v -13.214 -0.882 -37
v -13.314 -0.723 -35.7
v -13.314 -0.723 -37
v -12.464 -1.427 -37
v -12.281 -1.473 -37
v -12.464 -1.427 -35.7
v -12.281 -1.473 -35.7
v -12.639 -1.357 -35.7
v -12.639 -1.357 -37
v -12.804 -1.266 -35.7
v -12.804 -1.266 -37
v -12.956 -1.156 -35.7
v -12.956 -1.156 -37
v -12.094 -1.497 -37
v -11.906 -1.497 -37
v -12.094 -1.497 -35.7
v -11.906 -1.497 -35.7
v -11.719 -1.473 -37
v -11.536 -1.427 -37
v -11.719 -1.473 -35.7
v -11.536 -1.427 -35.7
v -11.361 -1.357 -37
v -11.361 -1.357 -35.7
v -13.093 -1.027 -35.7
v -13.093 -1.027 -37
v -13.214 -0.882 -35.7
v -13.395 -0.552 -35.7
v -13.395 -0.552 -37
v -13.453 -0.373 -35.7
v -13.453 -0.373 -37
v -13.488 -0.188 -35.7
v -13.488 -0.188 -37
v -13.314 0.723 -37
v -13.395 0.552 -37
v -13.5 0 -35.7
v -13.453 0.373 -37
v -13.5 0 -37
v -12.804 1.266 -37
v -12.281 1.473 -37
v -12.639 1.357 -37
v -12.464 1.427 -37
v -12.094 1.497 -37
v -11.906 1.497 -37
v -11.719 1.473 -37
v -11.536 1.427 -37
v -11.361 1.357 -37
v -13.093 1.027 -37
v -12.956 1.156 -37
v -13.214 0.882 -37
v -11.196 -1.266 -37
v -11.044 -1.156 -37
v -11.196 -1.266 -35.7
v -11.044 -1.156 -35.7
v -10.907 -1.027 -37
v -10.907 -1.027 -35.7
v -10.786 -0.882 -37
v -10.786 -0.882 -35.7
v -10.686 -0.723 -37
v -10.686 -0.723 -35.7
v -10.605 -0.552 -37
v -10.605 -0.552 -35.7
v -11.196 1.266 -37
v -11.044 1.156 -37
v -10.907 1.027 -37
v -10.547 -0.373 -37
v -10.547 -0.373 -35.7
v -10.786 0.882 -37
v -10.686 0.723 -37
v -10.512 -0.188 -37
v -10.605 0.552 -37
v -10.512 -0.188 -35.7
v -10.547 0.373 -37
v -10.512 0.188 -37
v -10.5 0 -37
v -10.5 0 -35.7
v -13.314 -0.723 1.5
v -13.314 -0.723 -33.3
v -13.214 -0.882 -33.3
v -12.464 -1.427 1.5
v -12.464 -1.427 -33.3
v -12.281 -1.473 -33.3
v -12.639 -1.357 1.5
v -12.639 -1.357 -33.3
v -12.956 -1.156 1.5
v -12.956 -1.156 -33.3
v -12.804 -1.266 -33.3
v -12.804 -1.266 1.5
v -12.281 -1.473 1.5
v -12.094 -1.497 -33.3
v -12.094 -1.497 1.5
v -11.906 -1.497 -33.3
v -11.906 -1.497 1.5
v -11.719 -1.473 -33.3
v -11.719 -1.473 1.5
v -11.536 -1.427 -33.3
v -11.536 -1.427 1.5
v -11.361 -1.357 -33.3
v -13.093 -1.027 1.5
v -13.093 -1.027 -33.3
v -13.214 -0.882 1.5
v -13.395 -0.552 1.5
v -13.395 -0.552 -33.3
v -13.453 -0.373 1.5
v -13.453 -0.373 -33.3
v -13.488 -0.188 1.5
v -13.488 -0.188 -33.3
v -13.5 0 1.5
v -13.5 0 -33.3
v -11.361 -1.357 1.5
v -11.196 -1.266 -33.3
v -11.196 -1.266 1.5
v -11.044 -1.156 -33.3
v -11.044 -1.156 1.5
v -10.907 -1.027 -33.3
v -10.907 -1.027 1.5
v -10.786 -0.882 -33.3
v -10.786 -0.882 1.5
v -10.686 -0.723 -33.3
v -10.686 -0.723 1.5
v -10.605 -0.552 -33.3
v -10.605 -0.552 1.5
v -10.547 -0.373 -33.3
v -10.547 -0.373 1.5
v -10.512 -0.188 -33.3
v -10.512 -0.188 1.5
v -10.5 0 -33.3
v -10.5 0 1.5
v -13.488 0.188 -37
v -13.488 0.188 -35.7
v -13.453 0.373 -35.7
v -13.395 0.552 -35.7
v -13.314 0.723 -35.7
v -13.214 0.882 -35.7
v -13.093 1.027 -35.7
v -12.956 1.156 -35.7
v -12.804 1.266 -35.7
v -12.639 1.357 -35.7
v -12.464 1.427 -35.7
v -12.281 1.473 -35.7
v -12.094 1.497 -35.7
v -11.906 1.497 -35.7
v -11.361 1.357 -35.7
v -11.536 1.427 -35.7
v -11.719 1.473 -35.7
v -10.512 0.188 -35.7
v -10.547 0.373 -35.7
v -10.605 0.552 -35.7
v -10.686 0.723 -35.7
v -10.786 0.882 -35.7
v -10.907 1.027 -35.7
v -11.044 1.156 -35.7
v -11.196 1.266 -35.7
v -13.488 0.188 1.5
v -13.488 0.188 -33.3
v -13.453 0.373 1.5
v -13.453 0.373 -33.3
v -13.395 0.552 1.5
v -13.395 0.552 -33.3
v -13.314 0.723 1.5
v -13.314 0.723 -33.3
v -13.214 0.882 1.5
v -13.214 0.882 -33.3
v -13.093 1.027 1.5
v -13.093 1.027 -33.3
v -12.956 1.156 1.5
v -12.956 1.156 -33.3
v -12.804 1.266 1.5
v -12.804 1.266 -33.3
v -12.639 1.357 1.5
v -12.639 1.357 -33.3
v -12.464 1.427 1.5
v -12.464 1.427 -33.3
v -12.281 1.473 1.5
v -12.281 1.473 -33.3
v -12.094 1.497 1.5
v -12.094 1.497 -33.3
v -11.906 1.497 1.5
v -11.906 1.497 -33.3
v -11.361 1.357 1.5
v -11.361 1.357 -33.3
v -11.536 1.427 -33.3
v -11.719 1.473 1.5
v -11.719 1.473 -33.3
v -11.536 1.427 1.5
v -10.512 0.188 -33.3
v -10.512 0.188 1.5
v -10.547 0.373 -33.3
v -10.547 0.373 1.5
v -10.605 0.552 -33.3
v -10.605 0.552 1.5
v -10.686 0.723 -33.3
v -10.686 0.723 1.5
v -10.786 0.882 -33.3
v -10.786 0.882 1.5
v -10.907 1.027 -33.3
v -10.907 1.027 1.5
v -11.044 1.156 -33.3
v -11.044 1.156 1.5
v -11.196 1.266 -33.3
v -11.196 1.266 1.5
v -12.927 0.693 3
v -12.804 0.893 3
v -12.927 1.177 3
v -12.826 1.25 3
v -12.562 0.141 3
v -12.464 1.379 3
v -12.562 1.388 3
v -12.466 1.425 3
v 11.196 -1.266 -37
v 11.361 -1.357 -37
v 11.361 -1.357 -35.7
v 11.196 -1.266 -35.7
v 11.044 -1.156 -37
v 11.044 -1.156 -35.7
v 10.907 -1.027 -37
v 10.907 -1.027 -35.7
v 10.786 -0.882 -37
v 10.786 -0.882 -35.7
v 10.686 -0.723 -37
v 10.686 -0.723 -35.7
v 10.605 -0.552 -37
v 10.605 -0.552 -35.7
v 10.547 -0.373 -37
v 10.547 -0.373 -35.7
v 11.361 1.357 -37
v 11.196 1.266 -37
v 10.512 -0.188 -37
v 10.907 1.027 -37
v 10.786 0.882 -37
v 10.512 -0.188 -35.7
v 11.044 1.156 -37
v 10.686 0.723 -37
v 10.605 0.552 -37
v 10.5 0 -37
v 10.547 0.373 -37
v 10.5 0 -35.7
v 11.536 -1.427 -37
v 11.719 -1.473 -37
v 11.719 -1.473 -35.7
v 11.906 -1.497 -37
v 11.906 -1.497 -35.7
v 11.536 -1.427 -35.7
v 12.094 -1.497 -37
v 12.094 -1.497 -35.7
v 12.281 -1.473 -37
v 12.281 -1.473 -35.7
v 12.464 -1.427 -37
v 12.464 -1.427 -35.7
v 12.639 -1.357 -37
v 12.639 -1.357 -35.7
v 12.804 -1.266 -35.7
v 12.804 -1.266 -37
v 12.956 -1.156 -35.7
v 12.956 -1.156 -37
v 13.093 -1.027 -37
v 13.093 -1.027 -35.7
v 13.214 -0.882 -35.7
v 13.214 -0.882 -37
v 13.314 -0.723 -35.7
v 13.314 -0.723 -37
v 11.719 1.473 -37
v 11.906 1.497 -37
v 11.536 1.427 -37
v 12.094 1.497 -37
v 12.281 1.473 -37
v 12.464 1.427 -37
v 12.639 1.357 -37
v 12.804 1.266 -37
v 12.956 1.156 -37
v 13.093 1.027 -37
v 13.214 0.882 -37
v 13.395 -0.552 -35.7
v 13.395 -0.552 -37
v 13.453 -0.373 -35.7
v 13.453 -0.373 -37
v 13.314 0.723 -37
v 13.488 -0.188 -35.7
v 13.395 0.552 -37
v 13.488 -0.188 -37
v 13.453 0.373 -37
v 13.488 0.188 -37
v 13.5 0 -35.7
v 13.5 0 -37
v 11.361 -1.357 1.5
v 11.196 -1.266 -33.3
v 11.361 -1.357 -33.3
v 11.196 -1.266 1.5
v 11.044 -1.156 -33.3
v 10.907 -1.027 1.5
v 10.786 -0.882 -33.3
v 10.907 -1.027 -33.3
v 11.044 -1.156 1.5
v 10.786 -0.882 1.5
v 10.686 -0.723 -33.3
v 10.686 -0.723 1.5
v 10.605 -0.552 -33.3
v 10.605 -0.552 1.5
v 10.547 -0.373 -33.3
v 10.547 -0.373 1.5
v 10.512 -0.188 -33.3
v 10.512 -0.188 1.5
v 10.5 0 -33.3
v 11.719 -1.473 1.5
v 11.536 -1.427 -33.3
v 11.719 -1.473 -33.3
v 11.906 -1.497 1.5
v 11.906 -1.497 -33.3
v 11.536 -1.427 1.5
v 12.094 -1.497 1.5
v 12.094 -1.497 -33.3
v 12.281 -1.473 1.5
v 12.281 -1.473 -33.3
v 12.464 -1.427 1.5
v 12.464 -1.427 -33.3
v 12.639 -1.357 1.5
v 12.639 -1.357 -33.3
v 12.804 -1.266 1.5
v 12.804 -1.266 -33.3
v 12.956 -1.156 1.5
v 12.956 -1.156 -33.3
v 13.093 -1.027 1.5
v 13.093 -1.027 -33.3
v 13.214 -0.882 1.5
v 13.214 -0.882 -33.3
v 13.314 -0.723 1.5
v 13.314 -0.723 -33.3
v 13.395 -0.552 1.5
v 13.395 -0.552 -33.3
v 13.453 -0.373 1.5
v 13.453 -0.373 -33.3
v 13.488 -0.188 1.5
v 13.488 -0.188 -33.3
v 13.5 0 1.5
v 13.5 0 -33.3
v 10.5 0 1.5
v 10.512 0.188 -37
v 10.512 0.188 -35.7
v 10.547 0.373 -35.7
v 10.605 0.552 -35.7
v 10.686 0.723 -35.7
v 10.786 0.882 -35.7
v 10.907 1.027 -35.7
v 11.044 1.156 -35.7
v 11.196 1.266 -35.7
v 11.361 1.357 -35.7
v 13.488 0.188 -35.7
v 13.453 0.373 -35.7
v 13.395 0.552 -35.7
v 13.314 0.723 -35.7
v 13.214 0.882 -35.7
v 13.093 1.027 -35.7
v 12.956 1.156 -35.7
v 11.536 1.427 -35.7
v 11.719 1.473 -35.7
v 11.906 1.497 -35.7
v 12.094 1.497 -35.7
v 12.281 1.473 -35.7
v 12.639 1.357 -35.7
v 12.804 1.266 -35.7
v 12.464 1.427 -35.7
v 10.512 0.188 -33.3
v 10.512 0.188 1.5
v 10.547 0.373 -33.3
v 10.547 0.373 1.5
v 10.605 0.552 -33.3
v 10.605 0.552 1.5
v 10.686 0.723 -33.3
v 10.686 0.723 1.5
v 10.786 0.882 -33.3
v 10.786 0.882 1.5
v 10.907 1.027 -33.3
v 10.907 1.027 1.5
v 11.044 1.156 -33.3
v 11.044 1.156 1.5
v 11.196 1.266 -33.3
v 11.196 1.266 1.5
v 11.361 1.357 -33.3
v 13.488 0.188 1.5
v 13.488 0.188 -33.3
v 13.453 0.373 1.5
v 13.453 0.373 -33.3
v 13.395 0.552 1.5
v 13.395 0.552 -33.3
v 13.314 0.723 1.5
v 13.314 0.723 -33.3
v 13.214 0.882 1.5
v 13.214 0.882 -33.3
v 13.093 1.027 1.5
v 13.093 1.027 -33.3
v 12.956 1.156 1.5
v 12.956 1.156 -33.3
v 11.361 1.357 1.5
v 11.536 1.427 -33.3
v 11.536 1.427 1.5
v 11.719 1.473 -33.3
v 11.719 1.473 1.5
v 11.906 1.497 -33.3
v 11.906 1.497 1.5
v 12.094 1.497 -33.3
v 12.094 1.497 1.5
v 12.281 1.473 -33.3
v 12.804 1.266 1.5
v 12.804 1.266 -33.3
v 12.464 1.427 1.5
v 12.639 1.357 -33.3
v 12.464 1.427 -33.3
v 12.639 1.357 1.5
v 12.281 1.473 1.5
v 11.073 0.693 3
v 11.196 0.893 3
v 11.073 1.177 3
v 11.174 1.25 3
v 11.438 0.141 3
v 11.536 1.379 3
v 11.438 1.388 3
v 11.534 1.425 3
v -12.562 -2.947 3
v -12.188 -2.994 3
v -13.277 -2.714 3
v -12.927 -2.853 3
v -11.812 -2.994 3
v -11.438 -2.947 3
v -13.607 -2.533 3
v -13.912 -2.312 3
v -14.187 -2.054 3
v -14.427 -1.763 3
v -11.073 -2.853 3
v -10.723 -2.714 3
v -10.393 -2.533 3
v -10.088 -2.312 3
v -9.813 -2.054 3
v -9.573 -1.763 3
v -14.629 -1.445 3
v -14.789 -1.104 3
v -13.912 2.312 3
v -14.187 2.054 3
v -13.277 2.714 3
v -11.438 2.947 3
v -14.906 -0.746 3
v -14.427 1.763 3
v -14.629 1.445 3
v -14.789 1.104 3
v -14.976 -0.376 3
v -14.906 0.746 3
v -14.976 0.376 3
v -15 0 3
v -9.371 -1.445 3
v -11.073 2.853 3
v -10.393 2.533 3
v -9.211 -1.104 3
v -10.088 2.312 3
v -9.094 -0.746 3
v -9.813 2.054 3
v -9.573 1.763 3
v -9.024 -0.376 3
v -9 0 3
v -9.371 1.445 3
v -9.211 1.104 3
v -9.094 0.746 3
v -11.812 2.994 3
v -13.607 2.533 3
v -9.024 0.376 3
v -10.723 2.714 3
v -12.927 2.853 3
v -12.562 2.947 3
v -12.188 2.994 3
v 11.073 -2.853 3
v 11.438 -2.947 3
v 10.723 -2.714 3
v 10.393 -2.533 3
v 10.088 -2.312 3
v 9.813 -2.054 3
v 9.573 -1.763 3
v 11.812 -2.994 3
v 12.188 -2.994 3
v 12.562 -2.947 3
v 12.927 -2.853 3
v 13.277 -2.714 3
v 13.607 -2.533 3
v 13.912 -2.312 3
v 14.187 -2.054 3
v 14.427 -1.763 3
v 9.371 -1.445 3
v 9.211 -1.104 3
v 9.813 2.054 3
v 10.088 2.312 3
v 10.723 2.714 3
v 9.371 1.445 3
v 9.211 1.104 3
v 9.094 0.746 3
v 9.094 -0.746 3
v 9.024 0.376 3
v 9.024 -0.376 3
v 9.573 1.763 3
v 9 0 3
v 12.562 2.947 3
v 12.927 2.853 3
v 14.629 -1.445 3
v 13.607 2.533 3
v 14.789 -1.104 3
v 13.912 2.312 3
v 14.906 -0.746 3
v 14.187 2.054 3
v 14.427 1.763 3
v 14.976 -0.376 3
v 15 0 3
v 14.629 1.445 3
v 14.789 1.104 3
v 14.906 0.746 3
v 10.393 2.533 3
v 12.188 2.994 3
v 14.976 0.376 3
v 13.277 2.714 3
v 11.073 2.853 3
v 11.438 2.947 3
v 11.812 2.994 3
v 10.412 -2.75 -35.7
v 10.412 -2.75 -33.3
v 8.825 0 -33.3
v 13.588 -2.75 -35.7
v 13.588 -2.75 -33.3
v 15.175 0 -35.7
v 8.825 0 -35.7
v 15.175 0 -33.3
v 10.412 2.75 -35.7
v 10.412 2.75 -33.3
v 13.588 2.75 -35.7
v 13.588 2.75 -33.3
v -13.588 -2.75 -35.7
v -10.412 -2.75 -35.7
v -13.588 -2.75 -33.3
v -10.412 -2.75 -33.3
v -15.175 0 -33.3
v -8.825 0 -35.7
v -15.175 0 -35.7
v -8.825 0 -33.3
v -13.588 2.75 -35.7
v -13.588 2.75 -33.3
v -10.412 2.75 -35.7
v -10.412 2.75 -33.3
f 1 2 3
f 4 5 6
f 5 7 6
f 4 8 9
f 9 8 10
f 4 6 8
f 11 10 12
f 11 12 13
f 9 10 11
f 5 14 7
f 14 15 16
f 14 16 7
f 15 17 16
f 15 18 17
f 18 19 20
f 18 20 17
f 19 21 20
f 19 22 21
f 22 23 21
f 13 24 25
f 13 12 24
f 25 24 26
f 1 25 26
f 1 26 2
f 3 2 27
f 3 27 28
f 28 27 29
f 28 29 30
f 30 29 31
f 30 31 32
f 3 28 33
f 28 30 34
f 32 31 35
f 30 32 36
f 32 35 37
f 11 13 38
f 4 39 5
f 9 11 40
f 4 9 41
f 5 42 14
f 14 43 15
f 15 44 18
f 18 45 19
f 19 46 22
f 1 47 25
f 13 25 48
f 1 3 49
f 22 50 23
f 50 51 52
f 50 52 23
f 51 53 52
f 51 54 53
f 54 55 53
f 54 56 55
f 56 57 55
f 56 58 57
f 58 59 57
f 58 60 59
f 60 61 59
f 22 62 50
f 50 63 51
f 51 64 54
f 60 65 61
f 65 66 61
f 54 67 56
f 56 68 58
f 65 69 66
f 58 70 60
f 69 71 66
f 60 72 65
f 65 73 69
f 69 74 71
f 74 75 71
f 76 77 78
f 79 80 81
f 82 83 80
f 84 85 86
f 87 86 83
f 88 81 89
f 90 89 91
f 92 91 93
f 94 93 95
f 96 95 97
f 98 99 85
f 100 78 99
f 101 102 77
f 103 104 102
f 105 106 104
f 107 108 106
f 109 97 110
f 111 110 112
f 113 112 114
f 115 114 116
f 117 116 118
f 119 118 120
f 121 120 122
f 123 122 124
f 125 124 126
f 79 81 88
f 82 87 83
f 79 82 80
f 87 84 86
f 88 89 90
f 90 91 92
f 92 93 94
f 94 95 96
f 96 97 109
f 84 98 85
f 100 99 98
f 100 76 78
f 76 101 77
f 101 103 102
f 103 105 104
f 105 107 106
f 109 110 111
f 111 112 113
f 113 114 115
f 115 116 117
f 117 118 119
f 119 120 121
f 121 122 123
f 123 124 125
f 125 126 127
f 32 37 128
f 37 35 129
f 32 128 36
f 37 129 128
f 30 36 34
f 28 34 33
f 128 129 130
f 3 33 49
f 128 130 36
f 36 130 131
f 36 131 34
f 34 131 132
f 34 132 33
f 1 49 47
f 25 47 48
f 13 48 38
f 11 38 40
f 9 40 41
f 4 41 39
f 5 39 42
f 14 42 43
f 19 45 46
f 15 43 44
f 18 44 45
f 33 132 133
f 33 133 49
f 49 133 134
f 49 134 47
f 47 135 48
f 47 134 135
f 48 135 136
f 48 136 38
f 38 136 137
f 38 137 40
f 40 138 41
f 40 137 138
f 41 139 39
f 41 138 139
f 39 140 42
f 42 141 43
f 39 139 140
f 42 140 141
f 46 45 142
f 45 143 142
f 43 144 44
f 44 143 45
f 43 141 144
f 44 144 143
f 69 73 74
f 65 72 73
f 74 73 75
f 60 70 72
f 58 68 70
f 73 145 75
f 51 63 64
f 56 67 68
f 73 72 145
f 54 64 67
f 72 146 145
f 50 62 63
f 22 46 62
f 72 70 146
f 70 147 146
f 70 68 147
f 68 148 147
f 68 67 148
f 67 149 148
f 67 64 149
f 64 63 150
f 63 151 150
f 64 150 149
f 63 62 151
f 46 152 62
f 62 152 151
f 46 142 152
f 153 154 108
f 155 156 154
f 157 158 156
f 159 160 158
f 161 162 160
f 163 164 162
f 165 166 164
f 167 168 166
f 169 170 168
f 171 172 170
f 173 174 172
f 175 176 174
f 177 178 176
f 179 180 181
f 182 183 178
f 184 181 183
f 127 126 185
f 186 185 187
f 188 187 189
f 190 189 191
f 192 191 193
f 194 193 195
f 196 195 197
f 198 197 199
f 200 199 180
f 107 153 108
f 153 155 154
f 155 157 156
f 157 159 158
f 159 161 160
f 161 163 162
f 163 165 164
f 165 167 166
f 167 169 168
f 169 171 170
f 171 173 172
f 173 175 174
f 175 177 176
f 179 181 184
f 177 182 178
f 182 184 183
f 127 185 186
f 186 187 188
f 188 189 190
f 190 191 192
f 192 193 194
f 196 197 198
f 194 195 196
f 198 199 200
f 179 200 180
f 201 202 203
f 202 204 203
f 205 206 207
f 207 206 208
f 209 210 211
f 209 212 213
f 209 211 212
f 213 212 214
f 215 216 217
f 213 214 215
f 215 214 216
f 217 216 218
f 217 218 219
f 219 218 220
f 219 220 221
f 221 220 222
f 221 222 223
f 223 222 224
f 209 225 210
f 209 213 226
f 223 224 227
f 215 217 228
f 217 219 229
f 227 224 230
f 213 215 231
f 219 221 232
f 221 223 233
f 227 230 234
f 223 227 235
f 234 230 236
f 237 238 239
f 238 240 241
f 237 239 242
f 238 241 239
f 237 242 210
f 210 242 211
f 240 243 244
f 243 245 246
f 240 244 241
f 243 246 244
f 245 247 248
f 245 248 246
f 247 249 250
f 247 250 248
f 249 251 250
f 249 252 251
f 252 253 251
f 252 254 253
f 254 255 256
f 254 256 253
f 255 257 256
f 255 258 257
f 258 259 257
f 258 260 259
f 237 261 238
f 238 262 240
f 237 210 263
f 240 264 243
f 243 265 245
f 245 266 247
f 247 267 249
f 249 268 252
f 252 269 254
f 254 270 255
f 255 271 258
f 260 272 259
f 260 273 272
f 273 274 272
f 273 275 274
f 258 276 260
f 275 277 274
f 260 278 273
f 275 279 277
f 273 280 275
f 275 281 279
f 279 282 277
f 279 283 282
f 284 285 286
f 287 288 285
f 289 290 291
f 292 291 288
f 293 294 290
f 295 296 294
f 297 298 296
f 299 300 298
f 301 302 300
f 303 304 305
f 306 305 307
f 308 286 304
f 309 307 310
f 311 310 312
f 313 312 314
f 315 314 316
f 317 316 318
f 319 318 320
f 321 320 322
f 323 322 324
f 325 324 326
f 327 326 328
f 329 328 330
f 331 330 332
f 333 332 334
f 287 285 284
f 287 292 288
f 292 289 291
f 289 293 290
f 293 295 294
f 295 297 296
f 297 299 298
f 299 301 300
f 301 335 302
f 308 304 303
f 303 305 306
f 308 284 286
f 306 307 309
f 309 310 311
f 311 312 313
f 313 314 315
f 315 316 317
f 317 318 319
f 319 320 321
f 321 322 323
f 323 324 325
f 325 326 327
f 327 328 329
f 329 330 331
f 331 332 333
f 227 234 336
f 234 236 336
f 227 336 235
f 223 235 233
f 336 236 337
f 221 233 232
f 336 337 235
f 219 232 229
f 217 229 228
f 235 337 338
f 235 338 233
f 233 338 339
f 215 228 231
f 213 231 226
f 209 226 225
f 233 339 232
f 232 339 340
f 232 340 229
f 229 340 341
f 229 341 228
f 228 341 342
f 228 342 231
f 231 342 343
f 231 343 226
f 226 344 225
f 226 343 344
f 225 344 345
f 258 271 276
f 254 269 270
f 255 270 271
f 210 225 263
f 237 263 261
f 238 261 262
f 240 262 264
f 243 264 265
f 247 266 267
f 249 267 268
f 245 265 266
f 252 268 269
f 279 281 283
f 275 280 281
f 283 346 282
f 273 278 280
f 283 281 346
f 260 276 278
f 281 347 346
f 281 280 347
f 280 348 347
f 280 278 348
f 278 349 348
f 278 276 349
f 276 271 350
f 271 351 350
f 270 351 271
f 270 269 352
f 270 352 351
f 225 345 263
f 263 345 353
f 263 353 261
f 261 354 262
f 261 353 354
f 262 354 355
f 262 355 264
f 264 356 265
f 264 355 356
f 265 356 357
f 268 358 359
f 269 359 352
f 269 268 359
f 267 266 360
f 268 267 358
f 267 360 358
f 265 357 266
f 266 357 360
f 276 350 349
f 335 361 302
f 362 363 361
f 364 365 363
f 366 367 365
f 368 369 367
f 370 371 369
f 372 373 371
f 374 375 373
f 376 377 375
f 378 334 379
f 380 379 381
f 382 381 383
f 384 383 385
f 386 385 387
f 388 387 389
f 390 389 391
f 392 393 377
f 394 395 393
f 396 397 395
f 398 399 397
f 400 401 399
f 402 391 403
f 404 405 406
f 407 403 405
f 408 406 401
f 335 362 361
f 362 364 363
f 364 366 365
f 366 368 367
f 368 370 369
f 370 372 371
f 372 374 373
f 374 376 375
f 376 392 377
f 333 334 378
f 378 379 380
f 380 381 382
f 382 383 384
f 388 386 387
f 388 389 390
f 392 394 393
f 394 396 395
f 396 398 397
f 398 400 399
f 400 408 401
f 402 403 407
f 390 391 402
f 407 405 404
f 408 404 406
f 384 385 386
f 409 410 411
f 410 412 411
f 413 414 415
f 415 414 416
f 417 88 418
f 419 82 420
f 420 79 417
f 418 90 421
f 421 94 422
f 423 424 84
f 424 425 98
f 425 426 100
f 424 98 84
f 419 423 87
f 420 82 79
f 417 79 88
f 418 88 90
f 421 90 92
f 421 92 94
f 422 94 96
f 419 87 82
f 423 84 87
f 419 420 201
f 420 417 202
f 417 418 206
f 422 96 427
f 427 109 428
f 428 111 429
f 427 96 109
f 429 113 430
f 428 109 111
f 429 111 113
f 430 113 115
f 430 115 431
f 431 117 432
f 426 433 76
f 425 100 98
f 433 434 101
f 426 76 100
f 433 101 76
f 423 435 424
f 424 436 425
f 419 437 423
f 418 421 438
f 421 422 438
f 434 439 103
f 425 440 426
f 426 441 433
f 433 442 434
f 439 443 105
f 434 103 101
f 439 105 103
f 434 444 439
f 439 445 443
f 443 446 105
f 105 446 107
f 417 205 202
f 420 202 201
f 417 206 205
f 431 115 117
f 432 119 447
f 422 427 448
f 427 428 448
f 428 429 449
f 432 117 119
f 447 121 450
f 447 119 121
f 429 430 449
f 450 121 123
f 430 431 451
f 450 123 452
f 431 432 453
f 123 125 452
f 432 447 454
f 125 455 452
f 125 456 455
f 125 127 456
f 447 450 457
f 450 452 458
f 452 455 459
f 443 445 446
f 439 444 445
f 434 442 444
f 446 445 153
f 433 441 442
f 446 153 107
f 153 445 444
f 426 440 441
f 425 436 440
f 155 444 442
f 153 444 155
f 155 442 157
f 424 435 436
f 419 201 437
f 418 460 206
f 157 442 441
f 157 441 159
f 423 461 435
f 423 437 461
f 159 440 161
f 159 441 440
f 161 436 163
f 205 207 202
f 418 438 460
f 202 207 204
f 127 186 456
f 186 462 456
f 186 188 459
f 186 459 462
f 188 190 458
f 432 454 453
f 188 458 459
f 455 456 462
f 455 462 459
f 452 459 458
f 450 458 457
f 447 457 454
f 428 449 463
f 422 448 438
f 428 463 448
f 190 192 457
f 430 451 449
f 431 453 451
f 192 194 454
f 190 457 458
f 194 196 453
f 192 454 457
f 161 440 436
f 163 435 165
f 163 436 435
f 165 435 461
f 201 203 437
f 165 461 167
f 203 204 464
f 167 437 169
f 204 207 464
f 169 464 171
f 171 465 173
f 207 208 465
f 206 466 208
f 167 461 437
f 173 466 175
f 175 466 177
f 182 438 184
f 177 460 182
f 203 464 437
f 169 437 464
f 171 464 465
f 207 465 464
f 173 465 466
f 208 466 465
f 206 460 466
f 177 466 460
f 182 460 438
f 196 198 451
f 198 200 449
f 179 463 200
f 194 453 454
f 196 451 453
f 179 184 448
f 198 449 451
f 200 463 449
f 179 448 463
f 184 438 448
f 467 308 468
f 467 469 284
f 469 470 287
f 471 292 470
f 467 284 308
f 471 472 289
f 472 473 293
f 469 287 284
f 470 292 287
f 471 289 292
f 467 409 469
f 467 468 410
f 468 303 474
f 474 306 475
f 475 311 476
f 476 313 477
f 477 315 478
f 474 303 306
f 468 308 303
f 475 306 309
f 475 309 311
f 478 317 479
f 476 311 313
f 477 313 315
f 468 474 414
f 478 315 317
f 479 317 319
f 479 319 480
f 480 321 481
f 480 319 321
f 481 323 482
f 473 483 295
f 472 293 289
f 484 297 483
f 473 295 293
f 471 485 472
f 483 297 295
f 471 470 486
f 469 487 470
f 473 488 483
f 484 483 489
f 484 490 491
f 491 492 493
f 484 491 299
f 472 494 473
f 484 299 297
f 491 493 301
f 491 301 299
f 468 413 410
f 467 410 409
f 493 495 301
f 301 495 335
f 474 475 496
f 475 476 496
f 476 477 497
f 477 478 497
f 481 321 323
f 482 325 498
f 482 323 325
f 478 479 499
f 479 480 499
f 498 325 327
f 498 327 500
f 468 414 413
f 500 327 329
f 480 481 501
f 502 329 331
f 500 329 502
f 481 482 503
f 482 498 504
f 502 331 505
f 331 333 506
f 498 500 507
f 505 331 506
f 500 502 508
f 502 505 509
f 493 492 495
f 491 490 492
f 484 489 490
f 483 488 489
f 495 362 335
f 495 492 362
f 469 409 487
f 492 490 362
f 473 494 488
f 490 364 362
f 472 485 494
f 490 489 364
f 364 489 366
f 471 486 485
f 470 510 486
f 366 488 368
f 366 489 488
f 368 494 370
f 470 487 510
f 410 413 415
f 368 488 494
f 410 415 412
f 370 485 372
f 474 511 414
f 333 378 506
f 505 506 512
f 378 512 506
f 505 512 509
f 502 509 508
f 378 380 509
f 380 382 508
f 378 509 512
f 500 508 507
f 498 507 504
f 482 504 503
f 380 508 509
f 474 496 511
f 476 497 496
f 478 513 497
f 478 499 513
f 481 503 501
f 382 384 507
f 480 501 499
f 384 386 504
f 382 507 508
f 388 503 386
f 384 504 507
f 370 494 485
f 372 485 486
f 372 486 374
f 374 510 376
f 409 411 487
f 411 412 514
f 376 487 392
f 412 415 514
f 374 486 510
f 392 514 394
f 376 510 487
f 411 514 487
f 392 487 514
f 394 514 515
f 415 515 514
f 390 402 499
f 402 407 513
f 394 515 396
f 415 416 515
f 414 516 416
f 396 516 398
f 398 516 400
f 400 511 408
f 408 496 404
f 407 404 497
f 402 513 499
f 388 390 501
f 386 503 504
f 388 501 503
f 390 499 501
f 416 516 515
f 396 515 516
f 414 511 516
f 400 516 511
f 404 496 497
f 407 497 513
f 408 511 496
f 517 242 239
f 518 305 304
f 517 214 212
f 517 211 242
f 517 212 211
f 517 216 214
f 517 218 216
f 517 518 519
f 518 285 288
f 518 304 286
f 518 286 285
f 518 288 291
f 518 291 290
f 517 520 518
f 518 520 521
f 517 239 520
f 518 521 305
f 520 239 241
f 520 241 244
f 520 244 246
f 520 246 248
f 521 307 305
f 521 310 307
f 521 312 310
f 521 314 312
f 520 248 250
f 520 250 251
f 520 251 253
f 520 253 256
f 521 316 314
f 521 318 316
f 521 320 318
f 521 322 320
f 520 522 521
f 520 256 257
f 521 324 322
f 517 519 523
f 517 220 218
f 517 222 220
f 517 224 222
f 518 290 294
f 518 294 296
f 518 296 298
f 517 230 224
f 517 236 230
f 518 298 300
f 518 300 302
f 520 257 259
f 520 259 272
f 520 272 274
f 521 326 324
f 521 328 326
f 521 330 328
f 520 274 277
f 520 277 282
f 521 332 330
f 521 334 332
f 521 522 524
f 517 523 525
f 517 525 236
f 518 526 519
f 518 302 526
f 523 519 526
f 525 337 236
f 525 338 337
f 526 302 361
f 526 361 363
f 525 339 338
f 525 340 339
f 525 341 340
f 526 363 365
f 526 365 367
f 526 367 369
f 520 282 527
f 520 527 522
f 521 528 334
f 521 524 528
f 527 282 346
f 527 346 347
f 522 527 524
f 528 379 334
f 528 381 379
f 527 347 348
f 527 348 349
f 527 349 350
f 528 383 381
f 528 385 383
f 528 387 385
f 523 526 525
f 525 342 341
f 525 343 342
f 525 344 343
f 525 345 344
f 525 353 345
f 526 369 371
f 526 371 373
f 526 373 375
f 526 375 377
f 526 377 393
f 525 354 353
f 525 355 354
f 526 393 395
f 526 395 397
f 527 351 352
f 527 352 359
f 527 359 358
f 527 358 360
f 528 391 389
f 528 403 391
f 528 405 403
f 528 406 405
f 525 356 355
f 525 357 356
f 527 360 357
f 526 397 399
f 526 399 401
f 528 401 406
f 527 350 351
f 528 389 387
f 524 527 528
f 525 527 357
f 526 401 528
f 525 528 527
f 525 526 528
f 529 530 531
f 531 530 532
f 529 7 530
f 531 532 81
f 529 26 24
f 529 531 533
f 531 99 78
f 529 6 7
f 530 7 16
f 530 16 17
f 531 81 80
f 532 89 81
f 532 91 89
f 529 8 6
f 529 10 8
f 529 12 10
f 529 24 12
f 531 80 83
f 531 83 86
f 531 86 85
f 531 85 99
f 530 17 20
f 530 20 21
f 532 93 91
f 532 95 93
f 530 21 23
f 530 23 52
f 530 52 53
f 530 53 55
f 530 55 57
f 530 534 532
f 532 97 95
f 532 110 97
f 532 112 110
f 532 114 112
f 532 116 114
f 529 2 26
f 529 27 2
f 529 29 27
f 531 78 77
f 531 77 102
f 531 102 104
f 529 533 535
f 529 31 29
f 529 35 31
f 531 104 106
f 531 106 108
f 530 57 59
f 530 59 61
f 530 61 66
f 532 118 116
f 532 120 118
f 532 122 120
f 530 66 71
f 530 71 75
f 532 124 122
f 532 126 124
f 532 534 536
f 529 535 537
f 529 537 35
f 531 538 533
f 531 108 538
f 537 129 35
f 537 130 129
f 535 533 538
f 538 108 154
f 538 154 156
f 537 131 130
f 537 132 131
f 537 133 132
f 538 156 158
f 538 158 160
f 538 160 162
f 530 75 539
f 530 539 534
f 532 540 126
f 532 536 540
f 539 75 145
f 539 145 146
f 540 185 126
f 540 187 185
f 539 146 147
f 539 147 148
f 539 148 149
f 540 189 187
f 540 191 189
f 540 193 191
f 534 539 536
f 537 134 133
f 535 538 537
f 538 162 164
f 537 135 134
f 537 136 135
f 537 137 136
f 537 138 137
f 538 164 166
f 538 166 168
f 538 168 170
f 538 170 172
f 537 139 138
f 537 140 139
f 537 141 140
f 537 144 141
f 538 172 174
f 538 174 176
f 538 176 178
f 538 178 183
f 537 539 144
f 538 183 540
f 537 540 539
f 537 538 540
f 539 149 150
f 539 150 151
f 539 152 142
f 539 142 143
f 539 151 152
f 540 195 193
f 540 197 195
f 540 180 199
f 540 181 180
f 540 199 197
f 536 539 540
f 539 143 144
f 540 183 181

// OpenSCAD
$fn = 50;

difference() {
	union() {
		translate(v = [-12, 0, 3]) {
			rotate(a = [0, 0, 0]) {
				difference() {
					union() {
						translate(v = [0, 0, -40.0]) {
							cylinder(h = 40, r = 1.5);
						}
						translate(v = [0, 0, -1.5]) {
							cylinder(h = 1.5, r1 = 1.5, r2 = 3);
						}
					}
					union();
				}
			}
		}
		translate(v = [-12, 0, -35.7]) {
			rotate(a = [0, 0, 0]) {
				difference() {
					union() {
						linear_extrude(height = 2.4) {
							polygon(points = [[3.1754264805429417, 0.0], [1.5877132402714713, 2.75], [-1.5877132402714702, 2.7500000000000004], [-3.1754264805429417, 3.888775875324659e-16], [-1.5877132402714722, -2.7499999999999996], [1.5877132402714687, -2.7500000000000013]]);
						}
					}
					union();
				}
			}
		}
		translate(v = [12, 0, 3]) {
			rotate(a = [0, 0, 0]) {
				difference() {
					union() {
						translate(v = [0, 0, -40.0]) {
							cylinder(h = 40, r = 1.5);
						}
						translate(v = [0, 0, -1.5]) {
							cylinder(h = 1.5, r1 = 1.5, r2 = 3);
						}
					}
					union();
				}
			}
		}
		translate(v = [12, 0, -35.7]) {
			rotate(a = [0, 0, 0]) {
				difference() {
					union() {
						linear_extrude(height = 2.4) {
							polygon(points = [[3.1754264805429417, 0.0], [1.5877132402714713, 2.75], [-1.5877132402714702, 2.7500000000000004], [-3.1754264805429417, 3.888775875324659e-16], [-1.5877132402714722, -2.7499999999999996], [1.5877132402714687, -2.7500000000000013]]);
						}
					}
					union();
				}
			}
		}
	}
	union();
}
